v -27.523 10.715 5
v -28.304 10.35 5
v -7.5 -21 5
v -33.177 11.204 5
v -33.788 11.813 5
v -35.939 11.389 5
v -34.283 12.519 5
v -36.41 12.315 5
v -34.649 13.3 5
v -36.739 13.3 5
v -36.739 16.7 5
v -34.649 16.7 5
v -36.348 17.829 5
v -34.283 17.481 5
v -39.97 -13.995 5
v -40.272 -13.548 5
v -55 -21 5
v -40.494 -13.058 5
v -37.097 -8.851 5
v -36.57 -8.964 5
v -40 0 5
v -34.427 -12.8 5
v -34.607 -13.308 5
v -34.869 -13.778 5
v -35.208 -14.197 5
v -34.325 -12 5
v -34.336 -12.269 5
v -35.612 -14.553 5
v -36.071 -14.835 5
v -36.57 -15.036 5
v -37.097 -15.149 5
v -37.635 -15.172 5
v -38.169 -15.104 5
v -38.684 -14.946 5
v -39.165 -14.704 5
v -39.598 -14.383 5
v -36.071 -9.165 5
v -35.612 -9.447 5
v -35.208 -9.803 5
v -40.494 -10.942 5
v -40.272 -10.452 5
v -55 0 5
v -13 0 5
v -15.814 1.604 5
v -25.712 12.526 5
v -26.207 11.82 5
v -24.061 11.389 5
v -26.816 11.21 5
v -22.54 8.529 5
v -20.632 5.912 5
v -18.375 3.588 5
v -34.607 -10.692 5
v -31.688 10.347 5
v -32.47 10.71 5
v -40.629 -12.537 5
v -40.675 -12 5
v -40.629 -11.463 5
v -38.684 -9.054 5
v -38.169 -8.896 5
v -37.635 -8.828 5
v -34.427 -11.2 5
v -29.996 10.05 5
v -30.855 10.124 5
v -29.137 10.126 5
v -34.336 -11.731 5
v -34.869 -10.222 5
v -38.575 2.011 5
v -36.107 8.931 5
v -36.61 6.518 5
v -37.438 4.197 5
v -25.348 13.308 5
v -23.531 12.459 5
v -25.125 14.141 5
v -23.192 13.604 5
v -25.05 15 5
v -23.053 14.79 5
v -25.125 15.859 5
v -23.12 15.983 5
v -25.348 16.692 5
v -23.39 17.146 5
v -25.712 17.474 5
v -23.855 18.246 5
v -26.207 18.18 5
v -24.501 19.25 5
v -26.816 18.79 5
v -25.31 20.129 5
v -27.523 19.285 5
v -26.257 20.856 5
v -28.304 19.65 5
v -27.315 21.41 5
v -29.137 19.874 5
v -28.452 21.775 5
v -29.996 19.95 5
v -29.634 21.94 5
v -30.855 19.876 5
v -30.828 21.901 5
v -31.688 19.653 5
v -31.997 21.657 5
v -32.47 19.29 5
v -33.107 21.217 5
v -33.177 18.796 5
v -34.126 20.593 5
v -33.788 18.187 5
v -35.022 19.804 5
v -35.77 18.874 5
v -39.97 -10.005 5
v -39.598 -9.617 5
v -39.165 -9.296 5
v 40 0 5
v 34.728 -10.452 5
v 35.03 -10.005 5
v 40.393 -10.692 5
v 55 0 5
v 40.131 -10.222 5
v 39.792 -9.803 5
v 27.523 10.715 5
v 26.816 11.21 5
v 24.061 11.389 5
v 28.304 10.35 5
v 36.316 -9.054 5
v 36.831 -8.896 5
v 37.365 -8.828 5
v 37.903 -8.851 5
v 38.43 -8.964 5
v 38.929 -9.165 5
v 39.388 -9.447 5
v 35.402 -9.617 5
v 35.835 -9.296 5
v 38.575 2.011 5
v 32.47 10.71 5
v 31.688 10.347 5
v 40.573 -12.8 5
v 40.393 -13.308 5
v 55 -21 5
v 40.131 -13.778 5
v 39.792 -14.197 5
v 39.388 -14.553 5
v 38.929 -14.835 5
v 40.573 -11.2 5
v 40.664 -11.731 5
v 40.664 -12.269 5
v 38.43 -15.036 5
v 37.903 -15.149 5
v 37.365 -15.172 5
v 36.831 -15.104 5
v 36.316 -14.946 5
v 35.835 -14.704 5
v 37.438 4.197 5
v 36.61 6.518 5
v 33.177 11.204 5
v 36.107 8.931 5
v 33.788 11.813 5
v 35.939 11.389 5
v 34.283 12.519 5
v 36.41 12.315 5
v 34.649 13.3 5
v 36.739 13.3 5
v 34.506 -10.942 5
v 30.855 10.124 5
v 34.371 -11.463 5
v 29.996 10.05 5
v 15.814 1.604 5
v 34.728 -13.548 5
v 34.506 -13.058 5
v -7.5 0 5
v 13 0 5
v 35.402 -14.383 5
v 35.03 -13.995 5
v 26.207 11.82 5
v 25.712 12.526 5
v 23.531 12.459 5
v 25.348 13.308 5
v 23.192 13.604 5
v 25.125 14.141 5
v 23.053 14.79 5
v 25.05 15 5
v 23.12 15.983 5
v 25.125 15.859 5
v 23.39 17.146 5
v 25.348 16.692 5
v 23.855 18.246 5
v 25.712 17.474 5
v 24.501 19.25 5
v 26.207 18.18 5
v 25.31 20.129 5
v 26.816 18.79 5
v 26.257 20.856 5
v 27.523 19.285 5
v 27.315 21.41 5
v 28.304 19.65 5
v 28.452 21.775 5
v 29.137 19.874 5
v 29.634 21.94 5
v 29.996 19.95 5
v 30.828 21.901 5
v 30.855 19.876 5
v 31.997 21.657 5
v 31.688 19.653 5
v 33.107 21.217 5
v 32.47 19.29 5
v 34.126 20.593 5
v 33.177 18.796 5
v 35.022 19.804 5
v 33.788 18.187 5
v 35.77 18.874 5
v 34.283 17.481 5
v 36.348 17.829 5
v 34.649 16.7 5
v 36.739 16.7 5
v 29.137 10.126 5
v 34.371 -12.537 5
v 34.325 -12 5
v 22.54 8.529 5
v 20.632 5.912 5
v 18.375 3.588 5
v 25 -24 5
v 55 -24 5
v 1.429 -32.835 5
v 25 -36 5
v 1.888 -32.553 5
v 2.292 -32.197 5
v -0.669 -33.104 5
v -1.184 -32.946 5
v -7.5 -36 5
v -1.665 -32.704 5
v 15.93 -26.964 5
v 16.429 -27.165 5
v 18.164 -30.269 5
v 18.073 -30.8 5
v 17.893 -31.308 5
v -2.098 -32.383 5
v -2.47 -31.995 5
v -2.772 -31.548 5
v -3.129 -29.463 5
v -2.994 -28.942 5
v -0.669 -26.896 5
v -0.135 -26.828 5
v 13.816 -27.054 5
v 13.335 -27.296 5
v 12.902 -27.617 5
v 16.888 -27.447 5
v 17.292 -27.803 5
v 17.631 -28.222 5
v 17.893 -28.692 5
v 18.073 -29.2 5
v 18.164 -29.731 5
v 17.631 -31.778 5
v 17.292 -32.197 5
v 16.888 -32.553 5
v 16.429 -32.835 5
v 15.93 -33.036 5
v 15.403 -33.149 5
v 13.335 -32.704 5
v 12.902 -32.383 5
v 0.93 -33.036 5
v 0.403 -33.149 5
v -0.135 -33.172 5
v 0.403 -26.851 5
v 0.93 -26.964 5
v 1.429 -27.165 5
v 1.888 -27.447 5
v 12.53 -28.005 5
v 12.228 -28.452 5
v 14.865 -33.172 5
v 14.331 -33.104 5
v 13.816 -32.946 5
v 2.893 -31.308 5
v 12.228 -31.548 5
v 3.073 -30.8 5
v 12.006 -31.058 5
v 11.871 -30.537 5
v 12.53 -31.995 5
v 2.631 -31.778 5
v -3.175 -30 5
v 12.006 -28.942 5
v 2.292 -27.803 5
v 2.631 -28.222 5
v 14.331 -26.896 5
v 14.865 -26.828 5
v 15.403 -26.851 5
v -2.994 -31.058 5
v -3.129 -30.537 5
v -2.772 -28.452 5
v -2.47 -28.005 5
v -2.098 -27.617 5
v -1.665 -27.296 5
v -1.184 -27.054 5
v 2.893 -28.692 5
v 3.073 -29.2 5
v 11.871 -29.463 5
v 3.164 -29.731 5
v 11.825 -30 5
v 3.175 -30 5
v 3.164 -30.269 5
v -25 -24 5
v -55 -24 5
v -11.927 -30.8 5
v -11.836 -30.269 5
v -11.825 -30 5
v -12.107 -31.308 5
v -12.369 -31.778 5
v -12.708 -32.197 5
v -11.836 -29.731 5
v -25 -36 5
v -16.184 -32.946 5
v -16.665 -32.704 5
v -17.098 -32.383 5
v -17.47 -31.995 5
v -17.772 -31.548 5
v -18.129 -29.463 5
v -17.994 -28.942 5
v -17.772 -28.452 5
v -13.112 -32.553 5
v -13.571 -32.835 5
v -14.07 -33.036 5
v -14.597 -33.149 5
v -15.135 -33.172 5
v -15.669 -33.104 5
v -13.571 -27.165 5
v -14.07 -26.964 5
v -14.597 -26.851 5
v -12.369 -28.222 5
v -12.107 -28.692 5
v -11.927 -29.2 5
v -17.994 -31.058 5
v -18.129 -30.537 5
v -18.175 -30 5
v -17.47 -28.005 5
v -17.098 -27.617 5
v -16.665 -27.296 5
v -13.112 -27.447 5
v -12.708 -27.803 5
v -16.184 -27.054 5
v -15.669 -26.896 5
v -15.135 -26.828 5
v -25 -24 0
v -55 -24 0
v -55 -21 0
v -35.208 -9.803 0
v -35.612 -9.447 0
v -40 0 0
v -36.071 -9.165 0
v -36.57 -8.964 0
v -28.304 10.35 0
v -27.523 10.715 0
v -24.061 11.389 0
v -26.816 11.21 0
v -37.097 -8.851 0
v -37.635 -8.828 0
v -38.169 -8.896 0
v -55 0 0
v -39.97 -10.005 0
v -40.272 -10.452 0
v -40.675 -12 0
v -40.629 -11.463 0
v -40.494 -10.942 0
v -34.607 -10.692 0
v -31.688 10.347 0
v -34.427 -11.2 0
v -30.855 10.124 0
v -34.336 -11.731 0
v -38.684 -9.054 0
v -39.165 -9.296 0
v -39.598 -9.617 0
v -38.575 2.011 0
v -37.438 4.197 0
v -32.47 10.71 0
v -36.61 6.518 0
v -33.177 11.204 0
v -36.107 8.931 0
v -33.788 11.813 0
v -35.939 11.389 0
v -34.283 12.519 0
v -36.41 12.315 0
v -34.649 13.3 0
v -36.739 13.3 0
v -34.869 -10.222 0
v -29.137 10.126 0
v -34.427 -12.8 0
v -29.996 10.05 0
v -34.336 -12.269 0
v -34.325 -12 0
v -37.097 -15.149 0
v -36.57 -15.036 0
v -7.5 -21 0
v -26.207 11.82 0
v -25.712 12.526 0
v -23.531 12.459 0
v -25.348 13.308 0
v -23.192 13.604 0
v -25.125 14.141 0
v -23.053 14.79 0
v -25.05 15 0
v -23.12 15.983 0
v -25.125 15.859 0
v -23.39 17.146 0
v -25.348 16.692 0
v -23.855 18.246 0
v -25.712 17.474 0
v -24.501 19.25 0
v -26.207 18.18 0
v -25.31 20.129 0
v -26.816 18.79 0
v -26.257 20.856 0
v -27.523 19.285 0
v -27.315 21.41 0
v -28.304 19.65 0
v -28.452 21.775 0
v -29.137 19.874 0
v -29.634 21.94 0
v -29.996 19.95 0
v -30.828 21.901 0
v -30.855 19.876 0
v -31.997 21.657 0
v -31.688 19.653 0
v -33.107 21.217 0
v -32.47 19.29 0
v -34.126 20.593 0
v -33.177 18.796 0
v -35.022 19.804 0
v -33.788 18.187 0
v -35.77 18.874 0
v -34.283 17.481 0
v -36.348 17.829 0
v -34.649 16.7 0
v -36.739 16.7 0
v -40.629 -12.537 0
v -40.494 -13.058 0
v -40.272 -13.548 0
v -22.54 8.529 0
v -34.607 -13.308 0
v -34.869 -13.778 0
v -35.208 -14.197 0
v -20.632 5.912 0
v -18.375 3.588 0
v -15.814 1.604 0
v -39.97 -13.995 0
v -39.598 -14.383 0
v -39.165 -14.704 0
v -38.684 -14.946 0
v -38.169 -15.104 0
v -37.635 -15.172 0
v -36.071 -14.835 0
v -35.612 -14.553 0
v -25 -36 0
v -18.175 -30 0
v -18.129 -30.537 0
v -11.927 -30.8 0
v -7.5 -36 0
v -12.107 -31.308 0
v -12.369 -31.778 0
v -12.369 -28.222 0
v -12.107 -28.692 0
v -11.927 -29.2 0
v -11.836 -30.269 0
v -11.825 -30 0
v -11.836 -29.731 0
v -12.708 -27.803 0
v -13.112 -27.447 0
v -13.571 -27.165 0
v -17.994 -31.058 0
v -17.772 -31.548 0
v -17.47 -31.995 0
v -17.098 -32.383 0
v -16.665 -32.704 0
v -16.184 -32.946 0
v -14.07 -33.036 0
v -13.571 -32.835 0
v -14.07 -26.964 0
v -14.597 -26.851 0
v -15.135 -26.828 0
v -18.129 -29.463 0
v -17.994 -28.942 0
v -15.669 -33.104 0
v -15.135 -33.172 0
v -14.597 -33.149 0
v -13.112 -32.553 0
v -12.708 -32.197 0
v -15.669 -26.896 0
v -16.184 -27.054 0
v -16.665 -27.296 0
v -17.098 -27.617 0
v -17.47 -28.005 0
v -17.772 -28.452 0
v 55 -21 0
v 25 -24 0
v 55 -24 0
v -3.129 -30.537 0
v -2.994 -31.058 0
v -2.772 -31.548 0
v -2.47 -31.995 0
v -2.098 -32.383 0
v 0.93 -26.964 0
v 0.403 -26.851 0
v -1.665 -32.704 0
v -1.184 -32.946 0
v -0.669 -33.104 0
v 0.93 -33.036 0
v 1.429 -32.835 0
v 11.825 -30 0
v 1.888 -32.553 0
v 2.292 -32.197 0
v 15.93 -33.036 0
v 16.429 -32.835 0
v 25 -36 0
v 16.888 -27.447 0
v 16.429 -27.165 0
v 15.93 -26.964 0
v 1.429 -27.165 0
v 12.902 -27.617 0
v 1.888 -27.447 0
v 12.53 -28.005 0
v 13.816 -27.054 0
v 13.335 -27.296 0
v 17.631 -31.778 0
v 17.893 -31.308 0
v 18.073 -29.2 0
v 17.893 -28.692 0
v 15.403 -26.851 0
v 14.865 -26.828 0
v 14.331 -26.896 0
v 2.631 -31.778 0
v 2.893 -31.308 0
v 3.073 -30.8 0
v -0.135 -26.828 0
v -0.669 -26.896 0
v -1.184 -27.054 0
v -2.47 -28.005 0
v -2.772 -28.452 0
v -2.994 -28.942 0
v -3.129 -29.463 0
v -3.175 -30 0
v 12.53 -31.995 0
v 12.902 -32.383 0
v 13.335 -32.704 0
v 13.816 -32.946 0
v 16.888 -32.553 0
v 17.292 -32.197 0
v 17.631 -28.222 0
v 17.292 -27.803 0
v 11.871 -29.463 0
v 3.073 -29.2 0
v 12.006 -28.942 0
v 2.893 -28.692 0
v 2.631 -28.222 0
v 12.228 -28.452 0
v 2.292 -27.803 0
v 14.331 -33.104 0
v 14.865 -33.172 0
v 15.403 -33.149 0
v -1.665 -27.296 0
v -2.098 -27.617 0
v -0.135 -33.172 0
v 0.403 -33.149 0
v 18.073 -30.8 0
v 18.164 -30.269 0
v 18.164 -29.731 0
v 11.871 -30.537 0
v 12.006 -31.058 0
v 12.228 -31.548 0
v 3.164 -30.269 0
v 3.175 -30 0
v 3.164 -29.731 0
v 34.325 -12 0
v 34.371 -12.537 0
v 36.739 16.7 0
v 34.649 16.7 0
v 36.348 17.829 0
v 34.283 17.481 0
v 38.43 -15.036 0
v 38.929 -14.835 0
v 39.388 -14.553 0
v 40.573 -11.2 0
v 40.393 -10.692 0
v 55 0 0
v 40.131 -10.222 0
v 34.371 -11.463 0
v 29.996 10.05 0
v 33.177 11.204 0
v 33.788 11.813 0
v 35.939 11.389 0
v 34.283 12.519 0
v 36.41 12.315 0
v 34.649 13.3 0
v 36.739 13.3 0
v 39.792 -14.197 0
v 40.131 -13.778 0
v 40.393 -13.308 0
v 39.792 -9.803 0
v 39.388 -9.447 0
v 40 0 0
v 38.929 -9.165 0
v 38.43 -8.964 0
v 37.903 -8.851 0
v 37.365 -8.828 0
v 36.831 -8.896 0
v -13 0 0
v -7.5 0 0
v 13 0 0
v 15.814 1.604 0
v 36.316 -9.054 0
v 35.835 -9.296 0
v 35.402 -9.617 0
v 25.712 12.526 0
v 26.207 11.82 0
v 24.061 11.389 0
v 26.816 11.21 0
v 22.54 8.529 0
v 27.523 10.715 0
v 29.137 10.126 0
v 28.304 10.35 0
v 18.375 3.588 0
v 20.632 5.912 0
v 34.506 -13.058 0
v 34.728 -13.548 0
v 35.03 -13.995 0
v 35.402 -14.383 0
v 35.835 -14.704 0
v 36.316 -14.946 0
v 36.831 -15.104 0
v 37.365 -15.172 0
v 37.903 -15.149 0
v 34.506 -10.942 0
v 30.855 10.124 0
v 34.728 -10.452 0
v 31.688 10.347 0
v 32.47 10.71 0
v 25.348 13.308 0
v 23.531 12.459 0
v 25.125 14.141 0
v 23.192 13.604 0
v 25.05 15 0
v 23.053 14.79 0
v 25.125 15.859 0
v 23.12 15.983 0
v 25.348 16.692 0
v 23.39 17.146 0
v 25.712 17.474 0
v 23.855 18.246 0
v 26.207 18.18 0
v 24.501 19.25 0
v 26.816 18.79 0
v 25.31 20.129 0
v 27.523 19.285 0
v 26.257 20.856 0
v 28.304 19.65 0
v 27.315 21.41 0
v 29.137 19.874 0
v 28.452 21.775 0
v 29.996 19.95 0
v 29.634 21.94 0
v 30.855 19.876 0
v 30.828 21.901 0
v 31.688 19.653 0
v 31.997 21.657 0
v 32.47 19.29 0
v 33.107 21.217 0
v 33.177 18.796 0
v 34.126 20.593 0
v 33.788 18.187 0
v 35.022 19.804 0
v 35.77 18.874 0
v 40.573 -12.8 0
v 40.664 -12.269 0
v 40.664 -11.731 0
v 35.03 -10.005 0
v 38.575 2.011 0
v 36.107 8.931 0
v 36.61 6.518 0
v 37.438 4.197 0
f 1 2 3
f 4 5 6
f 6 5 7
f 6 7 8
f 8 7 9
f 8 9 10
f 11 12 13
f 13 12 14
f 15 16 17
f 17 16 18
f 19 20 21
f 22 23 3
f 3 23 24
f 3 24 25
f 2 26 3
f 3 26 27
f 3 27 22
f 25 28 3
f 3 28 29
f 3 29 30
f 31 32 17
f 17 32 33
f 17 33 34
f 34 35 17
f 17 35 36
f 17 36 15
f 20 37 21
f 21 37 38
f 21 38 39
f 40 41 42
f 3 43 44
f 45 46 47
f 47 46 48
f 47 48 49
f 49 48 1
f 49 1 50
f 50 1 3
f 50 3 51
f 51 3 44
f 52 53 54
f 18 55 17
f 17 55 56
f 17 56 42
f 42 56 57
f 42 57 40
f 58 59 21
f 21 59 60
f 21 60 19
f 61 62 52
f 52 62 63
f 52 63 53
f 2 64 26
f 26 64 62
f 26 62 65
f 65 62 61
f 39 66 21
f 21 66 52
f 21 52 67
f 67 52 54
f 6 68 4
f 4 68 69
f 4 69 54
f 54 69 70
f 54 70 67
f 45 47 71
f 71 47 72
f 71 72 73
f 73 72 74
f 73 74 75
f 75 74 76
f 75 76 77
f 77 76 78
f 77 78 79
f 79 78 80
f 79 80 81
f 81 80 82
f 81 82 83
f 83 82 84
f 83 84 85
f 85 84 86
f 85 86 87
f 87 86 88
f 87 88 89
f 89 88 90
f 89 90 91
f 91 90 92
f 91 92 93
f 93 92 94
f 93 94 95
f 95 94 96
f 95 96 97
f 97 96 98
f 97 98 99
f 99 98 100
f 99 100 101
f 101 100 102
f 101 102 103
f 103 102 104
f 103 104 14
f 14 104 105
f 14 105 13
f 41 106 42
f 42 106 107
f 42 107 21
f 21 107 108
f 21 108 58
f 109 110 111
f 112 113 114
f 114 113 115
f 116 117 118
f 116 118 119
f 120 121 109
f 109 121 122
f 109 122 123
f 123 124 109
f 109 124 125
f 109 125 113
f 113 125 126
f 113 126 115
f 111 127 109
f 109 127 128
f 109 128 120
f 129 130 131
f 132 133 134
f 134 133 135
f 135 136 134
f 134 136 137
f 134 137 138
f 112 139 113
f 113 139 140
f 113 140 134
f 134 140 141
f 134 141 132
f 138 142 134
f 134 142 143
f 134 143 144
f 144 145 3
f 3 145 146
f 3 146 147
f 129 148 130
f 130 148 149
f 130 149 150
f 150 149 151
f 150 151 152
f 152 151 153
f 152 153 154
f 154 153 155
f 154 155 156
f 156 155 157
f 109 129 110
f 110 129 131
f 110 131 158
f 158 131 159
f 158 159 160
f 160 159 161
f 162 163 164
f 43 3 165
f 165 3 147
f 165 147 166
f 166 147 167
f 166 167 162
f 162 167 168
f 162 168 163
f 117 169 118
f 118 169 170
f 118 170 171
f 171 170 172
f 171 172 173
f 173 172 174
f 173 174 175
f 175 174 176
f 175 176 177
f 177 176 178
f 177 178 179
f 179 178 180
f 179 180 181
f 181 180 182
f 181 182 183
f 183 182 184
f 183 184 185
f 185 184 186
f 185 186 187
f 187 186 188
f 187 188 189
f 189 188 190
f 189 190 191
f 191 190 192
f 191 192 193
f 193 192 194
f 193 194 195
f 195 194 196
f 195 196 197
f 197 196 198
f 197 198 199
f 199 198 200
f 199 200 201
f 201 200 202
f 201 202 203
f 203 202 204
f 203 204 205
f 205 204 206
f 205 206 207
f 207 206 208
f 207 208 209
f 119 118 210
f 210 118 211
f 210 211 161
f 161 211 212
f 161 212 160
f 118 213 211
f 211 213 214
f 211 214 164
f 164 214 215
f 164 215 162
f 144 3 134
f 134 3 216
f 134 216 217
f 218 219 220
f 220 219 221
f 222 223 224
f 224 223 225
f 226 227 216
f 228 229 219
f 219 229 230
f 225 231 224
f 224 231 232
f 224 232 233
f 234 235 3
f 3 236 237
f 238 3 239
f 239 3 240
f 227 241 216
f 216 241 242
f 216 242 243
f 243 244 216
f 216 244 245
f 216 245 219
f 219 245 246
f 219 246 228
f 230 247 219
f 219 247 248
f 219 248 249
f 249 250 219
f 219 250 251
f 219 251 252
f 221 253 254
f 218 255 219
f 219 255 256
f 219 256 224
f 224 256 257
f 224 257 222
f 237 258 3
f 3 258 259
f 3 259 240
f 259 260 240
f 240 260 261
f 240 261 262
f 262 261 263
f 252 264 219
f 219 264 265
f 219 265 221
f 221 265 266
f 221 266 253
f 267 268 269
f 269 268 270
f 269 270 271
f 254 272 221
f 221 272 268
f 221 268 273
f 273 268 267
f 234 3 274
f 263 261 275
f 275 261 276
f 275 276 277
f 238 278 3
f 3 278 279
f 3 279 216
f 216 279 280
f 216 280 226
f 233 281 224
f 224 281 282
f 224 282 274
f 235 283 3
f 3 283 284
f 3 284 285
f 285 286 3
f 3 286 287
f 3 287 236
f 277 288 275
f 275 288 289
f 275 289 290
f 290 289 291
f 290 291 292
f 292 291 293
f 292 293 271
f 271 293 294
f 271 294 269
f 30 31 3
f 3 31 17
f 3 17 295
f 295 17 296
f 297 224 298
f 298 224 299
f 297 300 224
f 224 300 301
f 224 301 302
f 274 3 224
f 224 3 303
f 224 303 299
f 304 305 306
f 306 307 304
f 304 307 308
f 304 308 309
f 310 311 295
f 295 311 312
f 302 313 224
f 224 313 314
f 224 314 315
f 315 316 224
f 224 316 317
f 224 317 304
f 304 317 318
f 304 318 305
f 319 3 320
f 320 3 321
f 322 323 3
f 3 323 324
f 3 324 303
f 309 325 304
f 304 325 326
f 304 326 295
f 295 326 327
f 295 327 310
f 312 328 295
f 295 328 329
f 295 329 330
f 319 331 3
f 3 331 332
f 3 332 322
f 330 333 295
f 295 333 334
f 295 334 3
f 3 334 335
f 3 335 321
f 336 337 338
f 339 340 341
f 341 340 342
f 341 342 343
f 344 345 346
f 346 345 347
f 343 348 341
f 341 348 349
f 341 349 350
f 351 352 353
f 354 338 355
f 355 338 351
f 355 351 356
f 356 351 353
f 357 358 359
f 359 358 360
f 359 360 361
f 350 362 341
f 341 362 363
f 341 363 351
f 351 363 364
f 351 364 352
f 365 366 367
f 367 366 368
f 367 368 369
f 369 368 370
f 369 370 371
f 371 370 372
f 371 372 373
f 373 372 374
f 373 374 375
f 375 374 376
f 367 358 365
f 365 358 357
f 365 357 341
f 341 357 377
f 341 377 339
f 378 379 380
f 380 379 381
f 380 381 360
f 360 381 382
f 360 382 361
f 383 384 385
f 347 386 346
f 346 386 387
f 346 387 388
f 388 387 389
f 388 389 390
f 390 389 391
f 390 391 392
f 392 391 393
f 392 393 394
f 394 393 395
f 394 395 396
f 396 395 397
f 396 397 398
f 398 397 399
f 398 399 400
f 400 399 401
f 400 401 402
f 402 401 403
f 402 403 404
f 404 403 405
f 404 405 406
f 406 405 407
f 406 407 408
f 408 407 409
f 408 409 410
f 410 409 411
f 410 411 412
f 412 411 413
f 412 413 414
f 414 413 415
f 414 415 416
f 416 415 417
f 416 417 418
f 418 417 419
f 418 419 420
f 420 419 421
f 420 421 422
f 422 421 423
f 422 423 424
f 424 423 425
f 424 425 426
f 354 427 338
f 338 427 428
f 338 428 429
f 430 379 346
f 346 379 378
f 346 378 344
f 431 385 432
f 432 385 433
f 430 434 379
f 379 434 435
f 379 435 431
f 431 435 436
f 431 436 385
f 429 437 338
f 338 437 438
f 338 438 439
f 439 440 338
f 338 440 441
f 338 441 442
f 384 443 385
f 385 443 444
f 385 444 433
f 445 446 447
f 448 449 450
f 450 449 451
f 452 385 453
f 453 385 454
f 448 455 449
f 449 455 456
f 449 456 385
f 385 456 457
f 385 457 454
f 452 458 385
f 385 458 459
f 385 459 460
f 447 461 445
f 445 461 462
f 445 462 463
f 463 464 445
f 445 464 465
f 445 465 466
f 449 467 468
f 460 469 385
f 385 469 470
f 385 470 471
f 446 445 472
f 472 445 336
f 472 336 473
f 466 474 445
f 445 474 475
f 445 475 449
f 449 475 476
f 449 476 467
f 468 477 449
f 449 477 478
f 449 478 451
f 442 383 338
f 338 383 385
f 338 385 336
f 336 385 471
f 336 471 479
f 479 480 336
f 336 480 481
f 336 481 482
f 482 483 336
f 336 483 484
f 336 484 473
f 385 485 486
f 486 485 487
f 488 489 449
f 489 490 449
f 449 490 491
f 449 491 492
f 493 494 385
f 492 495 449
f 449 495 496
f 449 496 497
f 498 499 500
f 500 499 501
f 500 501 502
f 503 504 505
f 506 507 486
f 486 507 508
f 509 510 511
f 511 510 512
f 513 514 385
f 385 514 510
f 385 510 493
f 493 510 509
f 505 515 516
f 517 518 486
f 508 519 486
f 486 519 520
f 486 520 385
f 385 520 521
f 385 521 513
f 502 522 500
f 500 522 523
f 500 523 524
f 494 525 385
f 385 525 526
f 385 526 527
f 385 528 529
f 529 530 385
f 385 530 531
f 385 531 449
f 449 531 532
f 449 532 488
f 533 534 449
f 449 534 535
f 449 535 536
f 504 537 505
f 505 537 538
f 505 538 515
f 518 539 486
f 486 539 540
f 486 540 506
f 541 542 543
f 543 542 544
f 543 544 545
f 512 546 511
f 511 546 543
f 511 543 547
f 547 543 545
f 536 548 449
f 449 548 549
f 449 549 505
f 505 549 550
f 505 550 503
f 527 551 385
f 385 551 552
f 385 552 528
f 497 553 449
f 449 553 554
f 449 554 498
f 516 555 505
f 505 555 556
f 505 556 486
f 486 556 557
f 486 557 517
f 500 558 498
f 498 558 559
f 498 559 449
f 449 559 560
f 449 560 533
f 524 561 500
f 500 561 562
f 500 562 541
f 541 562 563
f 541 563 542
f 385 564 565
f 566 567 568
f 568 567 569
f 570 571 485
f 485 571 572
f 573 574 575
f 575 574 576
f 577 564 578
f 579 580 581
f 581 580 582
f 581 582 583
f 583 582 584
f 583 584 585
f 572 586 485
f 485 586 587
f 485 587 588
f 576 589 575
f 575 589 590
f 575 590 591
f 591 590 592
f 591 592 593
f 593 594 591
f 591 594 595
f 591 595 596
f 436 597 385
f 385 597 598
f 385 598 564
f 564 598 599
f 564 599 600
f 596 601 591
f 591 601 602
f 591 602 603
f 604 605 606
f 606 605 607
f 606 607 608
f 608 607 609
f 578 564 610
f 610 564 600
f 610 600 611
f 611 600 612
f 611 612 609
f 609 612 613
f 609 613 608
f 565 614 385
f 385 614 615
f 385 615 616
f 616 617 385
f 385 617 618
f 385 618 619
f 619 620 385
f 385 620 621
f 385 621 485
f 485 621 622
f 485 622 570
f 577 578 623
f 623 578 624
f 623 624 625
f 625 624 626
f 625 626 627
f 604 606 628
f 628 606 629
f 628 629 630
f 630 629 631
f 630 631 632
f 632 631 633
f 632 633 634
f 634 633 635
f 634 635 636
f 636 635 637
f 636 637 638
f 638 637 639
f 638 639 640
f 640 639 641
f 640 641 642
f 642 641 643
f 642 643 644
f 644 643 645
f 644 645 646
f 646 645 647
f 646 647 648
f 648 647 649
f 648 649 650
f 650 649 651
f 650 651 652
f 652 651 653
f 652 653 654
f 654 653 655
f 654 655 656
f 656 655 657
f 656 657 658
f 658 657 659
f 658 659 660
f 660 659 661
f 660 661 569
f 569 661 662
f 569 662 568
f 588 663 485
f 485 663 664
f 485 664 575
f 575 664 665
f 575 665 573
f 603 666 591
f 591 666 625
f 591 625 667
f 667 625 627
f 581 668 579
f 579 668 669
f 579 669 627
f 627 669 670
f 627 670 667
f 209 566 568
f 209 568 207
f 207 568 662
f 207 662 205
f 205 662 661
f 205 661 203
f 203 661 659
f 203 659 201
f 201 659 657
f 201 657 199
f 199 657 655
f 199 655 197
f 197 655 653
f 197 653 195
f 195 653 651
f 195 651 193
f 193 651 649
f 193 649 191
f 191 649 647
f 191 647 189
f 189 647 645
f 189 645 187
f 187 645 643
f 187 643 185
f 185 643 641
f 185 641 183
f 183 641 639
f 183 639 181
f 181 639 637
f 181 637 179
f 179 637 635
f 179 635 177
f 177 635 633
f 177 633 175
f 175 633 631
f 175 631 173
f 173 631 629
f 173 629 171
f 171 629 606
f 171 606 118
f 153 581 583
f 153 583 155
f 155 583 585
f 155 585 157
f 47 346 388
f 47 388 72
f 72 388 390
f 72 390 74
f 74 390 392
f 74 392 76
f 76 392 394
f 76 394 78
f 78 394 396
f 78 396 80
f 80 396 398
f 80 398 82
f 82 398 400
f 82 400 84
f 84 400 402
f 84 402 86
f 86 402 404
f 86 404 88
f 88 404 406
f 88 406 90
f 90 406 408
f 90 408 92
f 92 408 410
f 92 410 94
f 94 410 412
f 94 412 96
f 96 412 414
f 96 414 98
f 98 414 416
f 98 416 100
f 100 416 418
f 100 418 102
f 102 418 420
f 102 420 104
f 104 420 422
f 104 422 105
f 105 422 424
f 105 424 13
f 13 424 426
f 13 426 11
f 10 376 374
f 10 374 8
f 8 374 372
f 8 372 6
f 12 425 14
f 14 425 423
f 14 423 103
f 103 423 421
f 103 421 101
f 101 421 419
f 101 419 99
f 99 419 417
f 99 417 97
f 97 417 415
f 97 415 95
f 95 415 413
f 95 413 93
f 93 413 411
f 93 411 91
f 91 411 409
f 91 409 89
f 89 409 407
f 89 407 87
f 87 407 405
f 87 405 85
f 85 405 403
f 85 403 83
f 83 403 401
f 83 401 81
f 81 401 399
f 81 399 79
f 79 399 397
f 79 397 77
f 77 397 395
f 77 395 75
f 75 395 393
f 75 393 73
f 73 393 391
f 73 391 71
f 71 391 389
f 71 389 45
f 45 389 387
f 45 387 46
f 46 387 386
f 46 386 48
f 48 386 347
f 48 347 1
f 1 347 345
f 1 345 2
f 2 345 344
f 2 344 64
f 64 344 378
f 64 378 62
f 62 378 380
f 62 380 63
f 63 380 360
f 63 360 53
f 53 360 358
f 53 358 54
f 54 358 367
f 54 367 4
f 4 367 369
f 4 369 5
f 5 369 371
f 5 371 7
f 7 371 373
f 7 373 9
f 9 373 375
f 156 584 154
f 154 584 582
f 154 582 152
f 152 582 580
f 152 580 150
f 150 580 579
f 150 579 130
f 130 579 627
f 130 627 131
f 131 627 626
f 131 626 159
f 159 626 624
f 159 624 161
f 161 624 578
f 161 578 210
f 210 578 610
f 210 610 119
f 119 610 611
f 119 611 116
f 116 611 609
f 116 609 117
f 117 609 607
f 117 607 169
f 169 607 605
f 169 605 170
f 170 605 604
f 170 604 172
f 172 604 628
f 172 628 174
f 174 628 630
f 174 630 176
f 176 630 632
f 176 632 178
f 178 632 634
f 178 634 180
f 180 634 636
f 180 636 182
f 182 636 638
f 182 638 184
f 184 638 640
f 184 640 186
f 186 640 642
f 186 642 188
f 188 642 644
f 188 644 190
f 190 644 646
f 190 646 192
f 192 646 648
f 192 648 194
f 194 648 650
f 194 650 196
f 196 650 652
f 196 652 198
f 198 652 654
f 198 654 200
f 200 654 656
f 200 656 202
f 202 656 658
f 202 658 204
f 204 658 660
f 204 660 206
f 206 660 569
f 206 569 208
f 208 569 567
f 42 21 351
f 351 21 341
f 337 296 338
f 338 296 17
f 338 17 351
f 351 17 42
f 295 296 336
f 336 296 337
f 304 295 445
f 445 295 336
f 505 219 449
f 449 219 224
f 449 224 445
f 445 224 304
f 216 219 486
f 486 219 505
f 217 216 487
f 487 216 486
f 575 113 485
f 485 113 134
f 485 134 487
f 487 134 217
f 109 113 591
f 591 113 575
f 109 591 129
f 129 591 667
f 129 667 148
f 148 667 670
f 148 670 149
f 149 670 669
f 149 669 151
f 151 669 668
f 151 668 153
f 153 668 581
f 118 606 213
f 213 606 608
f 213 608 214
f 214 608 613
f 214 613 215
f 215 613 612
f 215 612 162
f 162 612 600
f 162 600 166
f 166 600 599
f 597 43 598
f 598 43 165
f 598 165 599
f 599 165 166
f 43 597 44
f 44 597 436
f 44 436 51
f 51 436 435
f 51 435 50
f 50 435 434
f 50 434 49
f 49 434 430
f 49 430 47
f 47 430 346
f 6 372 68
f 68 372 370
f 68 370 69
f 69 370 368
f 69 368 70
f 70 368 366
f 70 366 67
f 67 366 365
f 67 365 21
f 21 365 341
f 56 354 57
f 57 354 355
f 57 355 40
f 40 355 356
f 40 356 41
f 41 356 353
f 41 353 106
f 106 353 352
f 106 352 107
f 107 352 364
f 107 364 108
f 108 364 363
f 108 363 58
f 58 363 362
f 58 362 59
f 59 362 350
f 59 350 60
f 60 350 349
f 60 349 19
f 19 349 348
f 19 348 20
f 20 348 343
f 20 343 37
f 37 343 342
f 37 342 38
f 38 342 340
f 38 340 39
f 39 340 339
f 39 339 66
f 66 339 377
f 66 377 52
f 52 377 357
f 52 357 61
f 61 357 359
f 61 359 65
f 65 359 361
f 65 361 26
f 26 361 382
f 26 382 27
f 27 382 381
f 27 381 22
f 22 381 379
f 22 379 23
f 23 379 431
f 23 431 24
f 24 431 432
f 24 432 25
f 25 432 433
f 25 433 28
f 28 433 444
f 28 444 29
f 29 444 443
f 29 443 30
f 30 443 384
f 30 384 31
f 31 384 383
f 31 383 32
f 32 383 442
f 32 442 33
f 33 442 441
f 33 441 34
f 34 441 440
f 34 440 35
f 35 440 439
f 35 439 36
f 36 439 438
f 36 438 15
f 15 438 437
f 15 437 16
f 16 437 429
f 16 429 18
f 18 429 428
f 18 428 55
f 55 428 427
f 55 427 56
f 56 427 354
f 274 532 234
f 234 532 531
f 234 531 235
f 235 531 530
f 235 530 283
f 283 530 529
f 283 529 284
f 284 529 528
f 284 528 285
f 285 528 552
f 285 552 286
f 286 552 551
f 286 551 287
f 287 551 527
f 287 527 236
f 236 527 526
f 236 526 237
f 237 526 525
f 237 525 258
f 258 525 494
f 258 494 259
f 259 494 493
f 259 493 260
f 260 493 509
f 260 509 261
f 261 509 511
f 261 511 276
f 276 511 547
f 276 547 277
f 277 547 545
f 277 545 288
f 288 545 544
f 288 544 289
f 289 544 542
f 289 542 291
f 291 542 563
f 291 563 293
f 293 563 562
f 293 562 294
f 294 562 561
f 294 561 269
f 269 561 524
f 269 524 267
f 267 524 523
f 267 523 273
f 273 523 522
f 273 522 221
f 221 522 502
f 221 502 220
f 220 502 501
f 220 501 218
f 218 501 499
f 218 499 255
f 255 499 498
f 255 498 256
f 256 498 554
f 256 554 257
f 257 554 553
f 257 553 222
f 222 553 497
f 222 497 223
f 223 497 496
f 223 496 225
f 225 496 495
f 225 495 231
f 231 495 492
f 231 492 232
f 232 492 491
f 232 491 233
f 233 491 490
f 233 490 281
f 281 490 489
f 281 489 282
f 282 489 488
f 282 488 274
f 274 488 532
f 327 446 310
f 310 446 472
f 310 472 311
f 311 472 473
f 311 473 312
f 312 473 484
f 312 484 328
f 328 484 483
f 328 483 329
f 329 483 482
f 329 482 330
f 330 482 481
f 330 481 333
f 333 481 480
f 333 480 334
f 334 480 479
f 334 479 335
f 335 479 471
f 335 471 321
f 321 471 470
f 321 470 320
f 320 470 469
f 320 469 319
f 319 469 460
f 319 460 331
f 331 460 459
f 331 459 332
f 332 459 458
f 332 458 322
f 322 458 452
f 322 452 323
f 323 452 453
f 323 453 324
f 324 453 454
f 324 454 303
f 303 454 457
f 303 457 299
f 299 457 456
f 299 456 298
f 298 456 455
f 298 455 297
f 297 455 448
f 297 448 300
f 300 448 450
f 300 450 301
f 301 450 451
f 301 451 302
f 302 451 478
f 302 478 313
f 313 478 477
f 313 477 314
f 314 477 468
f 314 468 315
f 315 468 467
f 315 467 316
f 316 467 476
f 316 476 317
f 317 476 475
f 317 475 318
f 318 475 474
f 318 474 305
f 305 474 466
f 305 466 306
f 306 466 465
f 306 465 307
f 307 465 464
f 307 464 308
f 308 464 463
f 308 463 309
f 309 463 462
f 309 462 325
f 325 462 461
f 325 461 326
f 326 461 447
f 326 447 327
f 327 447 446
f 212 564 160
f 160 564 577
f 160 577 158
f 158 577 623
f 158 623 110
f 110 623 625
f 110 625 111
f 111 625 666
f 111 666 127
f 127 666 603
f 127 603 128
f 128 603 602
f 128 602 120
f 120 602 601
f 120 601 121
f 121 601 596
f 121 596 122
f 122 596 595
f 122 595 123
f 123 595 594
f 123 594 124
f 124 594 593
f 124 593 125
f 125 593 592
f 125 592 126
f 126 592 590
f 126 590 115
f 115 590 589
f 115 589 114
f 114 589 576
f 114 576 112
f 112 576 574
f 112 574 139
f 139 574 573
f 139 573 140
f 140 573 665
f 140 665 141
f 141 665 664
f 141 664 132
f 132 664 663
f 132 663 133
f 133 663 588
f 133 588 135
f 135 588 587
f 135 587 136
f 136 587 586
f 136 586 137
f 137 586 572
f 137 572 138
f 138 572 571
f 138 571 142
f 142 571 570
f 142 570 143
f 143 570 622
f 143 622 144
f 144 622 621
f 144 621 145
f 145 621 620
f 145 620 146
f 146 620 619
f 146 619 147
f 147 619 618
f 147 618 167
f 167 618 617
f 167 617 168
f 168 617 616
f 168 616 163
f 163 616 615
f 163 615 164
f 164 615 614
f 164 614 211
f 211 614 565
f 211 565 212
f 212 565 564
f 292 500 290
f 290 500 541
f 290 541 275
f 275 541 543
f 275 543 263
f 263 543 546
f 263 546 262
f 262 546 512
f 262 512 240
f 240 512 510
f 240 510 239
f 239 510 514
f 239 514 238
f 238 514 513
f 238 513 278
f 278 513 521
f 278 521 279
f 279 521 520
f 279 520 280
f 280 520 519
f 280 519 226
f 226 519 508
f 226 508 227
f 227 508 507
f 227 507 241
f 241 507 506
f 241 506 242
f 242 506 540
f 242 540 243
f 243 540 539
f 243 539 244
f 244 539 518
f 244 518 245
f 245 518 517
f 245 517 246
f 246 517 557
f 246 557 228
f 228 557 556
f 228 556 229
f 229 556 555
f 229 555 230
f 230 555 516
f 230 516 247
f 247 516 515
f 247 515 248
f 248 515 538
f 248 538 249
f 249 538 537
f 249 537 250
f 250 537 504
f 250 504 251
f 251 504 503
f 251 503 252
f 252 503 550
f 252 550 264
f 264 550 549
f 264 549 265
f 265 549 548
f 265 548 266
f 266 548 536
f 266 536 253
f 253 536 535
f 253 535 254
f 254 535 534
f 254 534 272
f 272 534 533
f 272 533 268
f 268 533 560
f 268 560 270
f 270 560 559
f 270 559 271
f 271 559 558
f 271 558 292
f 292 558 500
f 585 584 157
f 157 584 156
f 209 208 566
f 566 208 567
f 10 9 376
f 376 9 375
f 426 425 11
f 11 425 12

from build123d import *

# Parameters (mm, degrees)
CROQUIS1_R              = 4.95
CROQUIS1_R_2            = 3.175
SALIENTE_EXTRUIR1_DEPTH = 5
CORTAR_EXTRUIR1_DEPTH   = 66.924198895


with BuildPart() as part:
    # Croquis1 → Saliente-Extruir1 (new body)
    with BuildSketch(Plane.XY):
        with BuildLine():
            Line((13, 0), (-13, 0))
            ThreePointArc((-13, 0), (-19.544656296, 4.709966775), (-24.061489507, 11.389377737))
            ThreePointArc((-24.061489507, 11.389377737), (-30, 21.95), (-35.938510493, 11.389377737))
            ThreePointArc((-35.938510493, 11.389377737), (-36.984260452, 5.34343649), (-40, 0))
            Line((-40, 0), (-55, 0))
            Line((-55, 0), (-55, -24))
            Line((-55, -24), (-25, -24))
            Line((-25, -24), (-25, -36))
            Line((-25, -36), (25, -36))
            Line((25, -36), (25, -24))
            Line((25, -24), (55, -24))
            Line((55, -24), (55, 0))
            Line((55, 0), (40, 0))
            ThreePointArc((40, 0), (36.984260452, 5.34343649), (35.938510493, 11.389377737))
            ThreePointArc((35.938510493, 11.389377737), (30, 21.95), (24.061489507, 11.389377737))
            ThreePointArc((24.061489507, 11.389377737), (19.544656296, 4.709966775), (13, 0))
        make_face()
        with Locations((-30, 15)):
            Circle(CROQUIS1_R, mode=Mode.SUBTRACT)
        with Locations((-37.5, -12)):
            Circle(CROQUIS1_R_2, mode=Mode.SUBTRACT)
        with Locations((0, -30)):
            Circle(CROQUIS1_R_2, mode=Mode.SUBTRACT)
        with Locations(Location((30, 15, 0), (0, 0, 180))):
            Circle(CROQUIS1_R, mode=Mode.SUBTRACT)
        with Locations(Location((37.5, -12, 0), (0, 0, 180))):
            Circle(CROQUIS1_R_2, mode=Mode.SUBTRACT)
        with Locations((-15, -30)):
            Circle(CROQUIS1_R_2, mode=Mode.SUBTRACT)
        with Locations(Location((15, -30, 0), (0, 0, 180))):
            Circle(CROQUIS1_R_2, mode=Mode.SUBTRACT)
    extrude(amount=SALIENTE_EXTRUIR1_DEPTH)

    # Croquis2 → Cortar-Extruir1 (cut, through all)
    with BuildSketch(Plane.XY):
        with BuildLine():
            Line((-30, 16.7), (-36.738879729, 16.7))
            ThreePointArc((-36.738879729, 16.7), (-36.95, 15), (-36.738879729, 13.3))
            Line((-36.738879729, 13.3), (-30, 13.3))
            Line((-30, 13.3), (-30, 16.7))
        make_face()
        with BuildLine():
            Line((30, 16.7), (30, 13.3))
            Line((30, 13.3), (36.738879729, 13.3))
            ThreePointArc((36.738879729, 13.3), (36.95, 15), (36.738879729, 16.7))
            Line((36.738879729, 16.7), (30, 16.7))
        make_face()
    extrude(amount=CORTAR_EXTRUIR1_DEPTH, mode=Mode.SUBTRACT)


solid = part.part
